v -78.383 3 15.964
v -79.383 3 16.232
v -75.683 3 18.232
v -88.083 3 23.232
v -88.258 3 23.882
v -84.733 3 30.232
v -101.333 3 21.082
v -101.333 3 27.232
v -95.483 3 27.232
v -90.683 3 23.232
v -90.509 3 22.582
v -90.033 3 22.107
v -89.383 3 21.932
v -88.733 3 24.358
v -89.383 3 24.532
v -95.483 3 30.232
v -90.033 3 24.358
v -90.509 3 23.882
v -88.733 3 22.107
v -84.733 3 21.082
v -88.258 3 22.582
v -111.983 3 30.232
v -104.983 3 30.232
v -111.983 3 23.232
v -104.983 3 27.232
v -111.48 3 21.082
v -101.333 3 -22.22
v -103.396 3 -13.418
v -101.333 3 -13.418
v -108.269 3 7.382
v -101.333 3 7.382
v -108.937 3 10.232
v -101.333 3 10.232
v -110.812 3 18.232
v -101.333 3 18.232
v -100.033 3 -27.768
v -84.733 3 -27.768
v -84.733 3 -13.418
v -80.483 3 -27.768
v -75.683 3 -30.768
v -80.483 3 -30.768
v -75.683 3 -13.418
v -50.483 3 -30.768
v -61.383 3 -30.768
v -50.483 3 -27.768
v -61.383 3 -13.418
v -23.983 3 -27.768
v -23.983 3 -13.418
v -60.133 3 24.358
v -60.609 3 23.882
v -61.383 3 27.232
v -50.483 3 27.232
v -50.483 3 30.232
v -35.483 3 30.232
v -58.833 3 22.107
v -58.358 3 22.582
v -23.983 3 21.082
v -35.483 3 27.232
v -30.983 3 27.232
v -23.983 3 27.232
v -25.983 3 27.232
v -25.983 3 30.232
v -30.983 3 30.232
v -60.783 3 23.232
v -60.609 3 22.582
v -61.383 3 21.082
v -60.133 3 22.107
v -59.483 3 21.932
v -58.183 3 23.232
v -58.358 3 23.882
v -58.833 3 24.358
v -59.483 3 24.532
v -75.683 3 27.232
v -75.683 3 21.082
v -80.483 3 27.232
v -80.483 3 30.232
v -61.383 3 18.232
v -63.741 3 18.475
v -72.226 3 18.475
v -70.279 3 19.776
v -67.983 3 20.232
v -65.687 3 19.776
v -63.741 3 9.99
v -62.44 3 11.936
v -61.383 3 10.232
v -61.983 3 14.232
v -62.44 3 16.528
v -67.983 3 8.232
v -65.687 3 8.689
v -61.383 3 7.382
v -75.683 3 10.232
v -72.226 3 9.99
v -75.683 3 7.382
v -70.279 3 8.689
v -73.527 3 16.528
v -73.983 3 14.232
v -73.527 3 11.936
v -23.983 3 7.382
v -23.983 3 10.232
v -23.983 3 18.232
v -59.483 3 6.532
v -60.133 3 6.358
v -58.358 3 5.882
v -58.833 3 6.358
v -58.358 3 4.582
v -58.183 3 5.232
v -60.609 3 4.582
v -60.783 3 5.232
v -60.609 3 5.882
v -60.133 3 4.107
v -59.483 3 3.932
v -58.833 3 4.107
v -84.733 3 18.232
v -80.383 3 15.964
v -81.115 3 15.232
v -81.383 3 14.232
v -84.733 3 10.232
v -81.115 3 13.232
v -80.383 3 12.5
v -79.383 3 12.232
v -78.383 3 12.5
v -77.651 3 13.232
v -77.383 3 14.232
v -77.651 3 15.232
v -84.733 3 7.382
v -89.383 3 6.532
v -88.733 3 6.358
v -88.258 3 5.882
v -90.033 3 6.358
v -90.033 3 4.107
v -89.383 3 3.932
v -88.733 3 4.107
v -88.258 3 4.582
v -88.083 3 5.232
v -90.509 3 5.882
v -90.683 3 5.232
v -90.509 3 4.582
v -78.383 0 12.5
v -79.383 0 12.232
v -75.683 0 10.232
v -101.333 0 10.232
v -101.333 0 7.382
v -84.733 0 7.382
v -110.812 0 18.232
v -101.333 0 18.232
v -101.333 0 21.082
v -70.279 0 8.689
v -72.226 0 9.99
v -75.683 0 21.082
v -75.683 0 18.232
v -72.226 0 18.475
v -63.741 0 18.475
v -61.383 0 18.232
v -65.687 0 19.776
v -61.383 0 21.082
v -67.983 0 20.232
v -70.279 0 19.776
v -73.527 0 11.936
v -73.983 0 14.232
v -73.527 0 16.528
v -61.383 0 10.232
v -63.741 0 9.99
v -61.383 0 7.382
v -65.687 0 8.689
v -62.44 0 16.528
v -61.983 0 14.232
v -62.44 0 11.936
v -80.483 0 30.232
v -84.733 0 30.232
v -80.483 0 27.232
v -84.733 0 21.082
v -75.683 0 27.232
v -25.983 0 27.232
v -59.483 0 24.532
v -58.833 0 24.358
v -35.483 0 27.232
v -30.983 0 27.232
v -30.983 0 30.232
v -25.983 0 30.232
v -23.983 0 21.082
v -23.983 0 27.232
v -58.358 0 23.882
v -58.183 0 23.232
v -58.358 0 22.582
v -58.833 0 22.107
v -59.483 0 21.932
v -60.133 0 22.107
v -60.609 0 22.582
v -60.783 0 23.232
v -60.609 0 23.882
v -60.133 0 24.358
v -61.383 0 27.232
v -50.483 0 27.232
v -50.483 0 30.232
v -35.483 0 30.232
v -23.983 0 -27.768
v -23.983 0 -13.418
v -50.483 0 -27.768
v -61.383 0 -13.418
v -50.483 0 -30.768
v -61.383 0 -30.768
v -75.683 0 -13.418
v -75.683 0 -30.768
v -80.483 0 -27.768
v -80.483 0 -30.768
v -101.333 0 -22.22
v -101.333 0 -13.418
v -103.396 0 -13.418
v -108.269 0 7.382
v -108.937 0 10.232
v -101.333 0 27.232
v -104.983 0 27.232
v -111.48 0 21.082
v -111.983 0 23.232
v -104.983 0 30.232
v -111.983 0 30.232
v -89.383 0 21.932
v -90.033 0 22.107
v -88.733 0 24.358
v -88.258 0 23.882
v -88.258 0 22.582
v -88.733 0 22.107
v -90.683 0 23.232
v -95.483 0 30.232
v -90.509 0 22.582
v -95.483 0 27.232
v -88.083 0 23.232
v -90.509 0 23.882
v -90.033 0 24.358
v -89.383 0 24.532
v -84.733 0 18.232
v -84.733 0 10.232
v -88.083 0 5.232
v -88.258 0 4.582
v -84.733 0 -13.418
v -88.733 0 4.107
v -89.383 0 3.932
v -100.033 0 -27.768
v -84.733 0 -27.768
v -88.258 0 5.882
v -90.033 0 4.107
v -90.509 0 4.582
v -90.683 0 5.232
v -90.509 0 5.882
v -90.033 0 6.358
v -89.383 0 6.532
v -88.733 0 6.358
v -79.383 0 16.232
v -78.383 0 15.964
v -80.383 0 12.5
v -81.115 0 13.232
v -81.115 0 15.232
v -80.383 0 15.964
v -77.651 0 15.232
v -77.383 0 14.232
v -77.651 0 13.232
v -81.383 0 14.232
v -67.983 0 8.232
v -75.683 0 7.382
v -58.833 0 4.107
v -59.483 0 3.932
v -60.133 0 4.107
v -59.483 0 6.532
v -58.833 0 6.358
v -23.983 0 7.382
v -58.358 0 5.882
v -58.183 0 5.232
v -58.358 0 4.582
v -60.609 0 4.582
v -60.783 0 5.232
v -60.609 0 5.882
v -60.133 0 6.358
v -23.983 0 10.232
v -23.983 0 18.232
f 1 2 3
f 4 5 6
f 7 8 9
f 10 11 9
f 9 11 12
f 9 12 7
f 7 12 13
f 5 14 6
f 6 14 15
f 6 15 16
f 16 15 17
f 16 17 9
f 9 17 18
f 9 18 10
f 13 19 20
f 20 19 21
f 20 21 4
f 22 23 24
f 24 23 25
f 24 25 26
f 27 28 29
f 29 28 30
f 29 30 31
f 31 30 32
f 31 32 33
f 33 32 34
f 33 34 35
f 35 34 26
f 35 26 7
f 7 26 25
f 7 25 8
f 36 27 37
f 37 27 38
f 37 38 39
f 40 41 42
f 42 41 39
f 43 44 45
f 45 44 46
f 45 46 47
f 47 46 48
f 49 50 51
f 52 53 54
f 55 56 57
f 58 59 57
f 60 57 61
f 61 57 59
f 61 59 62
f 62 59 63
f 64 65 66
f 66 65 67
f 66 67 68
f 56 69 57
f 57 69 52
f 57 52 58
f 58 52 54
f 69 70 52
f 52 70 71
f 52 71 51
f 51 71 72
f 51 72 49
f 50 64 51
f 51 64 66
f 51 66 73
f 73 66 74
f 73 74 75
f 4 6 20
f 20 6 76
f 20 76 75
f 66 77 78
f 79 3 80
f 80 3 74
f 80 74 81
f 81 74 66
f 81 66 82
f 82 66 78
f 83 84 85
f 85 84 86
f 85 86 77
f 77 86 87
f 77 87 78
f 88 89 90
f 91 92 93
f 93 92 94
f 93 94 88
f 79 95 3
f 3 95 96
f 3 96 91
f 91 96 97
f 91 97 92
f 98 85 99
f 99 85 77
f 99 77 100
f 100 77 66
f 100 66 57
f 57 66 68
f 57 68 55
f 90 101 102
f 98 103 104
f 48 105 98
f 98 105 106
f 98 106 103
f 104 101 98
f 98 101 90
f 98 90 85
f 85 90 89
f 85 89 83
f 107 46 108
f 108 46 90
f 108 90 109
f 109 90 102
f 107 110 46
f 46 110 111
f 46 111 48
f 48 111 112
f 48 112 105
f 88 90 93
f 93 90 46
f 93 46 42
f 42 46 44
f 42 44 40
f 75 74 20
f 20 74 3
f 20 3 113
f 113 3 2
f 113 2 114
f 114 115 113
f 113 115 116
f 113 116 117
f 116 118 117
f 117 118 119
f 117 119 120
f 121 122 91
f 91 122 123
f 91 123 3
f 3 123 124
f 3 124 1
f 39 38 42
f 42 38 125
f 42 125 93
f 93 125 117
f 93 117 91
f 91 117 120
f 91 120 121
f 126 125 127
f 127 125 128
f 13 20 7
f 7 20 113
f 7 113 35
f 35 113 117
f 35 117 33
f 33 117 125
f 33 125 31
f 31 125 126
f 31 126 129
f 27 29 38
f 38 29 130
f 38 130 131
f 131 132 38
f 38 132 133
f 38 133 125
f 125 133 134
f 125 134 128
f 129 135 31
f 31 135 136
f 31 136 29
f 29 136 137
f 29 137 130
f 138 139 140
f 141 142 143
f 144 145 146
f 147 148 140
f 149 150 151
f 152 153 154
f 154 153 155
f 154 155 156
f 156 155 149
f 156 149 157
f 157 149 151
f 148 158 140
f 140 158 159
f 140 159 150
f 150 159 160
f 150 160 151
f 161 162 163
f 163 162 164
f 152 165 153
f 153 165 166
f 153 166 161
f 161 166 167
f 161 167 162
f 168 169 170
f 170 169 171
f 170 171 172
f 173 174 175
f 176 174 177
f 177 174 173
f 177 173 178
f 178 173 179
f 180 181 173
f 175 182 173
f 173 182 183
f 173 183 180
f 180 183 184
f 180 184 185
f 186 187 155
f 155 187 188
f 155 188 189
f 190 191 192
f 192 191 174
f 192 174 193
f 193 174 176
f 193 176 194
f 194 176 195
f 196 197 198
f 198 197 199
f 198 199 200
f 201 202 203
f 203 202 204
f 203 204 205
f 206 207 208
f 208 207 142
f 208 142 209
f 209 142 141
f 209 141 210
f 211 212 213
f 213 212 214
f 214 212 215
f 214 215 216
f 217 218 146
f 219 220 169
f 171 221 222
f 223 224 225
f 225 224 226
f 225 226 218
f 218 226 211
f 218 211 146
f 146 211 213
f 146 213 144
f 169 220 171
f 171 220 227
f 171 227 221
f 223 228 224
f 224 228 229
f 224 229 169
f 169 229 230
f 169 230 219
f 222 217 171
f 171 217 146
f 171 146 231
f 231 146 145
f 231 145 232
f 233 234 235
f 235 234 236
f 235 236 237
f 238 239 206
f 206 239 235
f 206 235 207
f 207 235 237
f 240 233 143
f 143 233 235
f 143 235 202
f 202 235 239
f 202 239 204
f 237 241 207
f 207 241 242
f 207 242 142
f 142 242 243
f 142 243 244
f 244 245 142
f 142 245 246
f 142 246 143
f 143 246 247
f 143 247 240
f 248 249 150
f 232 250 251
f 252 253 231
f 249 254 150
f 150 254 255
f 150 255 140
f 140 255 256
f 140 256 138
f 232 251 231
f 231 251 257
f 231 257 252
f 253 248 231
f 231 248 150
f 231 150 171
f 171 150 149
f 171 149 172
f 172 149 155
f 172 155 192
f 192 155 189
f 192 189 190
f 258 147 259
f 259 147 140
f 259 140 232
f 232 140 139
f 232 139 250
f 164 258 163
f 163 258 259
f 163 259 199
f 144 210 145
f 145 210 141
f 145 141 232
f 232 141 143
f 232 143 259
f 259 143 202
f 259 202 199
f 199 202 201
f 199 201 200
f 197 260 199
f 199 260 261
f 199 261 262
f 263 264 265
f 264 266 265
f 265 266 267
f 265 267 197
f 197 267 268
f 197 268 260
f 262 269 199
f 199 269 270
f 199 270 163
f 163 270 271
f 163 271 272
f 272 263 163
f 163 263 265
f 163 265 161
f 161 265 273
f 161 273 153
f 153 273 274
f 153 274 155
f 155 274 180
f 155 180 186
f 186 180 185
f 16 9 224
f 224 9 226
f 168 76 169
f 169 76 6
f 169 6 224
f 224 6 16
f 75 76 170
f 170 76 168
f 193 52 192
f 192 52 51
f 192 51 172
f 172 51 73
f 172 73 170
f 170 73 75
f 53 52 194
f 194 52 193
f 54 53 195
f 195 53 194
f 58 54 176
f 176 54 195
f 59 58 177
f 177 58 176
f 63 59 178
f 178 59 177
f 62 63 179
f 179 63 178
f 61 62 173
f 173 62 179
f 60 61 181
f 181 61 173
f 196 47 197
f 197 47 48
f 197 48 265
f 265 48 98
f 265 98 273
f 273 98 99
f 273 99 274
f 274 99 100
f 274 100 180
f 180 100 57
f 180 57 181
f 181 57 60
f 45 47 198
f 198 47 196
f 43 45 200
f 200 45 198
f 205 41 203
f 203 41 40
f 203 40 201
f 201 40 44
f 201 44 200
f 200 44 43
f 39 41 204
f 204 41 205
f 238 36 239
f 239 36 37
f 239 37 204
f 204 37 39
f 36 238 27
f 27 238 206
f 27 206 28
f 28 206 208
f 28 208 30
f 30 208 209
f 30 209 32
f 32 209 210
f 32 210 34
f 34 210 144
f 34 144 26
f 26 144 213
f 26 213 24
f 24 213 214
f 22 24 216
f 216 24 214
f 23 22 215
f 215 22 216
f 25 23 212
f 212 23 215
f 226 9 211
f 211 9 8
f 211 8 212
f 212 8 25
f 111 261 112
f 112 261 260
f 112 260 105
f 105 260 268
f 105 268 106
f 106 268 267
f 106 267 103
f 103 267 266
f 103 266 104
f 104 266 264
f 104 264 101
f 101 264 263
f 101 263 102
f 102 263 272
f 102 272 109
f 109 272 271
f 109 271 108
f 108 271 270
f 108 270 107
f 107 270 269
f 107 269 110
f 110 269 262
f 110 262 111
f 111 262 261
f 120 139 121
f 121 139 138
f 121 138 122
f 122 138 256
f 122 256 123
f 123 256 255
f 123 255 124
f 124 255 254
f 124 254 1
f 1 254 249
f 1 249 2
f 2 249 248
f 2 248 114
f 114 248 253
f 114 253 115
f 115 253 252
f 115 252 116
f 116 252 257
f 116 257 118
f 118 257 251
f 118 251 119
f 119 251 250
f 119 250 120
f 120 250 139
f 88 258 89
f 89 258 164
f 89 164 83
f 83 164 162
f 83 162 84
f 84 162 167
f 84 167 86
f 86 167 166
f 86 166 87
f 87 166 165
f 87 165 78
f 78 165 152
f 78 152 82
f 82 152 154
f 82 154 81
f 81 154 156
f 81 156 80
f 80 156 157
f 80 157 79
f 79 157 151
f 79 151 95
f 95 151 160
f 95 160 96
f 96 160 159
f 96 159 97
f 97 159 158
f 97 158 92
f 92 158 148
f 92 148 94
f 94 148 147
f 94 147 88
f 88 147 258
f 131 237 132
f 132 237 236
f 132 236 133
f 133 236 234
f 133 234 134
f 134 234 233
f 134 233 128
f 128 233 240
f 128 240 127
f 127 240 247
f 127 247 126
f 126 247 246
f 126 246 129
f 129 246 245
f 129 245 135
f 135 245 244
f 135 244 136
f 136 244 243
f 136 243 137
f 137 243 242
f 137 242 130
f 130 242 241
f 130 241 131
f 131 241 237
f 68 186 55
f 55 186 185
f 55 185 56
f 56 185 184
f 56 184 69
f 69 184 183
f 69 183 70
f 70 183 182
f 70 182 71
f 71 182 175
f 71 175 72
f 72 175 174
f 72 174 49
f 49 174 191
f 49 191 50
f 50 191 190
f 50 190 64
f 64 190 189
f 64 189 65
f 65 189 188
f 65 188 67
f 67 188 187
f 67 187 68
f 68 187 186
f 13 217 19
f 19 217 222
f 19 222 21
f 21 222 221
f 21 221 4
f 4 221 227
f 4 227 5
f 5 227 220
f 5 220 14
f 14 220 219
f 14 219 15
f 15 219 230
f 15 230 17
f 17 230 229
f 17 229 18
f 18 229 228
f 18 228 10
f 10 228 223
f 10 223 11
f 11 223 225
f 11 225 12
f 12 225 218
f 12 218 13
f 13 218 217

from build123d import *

# Parameters (mm, degrees)
SKETCH1_R           = 2
SKETCH1_R_2         = 6
SKETCH1_R_3         = 1.3
BOSS_EXTRUDE1_DEPTH = 3


with BuildPart() as part:
    # Sketch1 → Boss-Extrude1 (new body)
    with BuildSketch(Plane(origin=(0, 0, 0), x_dir=(1, 0, 0), z_dir=(0, 1, 0))):
        Polygon((-95.483372271, 27.767651072), (-80.483372271, 27.767651072), (-80.483372271, 30.767651072), (-50.483372271, 30.767651072), (-50.483372271, 27.767651072), (-35.483372271, 27.767651072), (-25.983372271, 27.767651072), (-23.983372271, 27.767651072), (-23.983372271, -27.232348928), (-25.983372271, -27.232348928), (-25.983372271, -30.232348928), (-30.983372271, -30.232348928), (-30.983372271, -27.232348928), (-35.483372271, -27.232348928), (-35.483372271, -30.232348928), (-50.483372271, -30.232348928), (-50.483372271, -27.232348928), (-80.483372271, -27.232348928), (-80.483372271, -30.232348928), (-95.483372271, -30.232348928), (-95.483372271, -27.232348928), (-104.983372271, -27.232348928), (-104.983372271, -30.232348928), (-111.983372271, -30.232348928), (-111.983372271, -27.232348928), (-111.983372271, -23.232348928), (-100.033372271, 27.767651072), align=None)
        with Locations(Location((-79.383372271, -14.232348928, 0), (0, 0, 270))):
            Circle(SKETCH1_R, mode=Mode.SUBTRACT)
        with Locations(Location((-67.983372271, -14.232348928, 0), (0, 0, 270))):
            Circle(SKETCH1_R_2, mode=Mode.SUBTRACT)
        with Locations(Location((-59.483372271, -23.232348928, 0), (0, 0, 270))):
            Circle(SKETCH1_R_3, mode=Mode.SUBTRACT)
        with Locations(Location((-59.483372271, -5.232348928, 0), (0, 0, 270))):
            Circle(SKETCH1_R_3, mode=Mode.SUBTRACT)
        with Locations(Location((-89.383372271, -5.232348928, 0), (0, 0, 270))):
            Circle(SKETCH1_R_3, mode=Mode.SUBTRACT)
        with Locations(Location((-89.383372271, -23.232348928, 0), (0, 0, 270))):
            Circle(SKETCH1_R_3, mode=Mode.SUBTRACT)
    extrude(amount=BOSS_EXTRUDE1_DEPTH)


solid = part.part
